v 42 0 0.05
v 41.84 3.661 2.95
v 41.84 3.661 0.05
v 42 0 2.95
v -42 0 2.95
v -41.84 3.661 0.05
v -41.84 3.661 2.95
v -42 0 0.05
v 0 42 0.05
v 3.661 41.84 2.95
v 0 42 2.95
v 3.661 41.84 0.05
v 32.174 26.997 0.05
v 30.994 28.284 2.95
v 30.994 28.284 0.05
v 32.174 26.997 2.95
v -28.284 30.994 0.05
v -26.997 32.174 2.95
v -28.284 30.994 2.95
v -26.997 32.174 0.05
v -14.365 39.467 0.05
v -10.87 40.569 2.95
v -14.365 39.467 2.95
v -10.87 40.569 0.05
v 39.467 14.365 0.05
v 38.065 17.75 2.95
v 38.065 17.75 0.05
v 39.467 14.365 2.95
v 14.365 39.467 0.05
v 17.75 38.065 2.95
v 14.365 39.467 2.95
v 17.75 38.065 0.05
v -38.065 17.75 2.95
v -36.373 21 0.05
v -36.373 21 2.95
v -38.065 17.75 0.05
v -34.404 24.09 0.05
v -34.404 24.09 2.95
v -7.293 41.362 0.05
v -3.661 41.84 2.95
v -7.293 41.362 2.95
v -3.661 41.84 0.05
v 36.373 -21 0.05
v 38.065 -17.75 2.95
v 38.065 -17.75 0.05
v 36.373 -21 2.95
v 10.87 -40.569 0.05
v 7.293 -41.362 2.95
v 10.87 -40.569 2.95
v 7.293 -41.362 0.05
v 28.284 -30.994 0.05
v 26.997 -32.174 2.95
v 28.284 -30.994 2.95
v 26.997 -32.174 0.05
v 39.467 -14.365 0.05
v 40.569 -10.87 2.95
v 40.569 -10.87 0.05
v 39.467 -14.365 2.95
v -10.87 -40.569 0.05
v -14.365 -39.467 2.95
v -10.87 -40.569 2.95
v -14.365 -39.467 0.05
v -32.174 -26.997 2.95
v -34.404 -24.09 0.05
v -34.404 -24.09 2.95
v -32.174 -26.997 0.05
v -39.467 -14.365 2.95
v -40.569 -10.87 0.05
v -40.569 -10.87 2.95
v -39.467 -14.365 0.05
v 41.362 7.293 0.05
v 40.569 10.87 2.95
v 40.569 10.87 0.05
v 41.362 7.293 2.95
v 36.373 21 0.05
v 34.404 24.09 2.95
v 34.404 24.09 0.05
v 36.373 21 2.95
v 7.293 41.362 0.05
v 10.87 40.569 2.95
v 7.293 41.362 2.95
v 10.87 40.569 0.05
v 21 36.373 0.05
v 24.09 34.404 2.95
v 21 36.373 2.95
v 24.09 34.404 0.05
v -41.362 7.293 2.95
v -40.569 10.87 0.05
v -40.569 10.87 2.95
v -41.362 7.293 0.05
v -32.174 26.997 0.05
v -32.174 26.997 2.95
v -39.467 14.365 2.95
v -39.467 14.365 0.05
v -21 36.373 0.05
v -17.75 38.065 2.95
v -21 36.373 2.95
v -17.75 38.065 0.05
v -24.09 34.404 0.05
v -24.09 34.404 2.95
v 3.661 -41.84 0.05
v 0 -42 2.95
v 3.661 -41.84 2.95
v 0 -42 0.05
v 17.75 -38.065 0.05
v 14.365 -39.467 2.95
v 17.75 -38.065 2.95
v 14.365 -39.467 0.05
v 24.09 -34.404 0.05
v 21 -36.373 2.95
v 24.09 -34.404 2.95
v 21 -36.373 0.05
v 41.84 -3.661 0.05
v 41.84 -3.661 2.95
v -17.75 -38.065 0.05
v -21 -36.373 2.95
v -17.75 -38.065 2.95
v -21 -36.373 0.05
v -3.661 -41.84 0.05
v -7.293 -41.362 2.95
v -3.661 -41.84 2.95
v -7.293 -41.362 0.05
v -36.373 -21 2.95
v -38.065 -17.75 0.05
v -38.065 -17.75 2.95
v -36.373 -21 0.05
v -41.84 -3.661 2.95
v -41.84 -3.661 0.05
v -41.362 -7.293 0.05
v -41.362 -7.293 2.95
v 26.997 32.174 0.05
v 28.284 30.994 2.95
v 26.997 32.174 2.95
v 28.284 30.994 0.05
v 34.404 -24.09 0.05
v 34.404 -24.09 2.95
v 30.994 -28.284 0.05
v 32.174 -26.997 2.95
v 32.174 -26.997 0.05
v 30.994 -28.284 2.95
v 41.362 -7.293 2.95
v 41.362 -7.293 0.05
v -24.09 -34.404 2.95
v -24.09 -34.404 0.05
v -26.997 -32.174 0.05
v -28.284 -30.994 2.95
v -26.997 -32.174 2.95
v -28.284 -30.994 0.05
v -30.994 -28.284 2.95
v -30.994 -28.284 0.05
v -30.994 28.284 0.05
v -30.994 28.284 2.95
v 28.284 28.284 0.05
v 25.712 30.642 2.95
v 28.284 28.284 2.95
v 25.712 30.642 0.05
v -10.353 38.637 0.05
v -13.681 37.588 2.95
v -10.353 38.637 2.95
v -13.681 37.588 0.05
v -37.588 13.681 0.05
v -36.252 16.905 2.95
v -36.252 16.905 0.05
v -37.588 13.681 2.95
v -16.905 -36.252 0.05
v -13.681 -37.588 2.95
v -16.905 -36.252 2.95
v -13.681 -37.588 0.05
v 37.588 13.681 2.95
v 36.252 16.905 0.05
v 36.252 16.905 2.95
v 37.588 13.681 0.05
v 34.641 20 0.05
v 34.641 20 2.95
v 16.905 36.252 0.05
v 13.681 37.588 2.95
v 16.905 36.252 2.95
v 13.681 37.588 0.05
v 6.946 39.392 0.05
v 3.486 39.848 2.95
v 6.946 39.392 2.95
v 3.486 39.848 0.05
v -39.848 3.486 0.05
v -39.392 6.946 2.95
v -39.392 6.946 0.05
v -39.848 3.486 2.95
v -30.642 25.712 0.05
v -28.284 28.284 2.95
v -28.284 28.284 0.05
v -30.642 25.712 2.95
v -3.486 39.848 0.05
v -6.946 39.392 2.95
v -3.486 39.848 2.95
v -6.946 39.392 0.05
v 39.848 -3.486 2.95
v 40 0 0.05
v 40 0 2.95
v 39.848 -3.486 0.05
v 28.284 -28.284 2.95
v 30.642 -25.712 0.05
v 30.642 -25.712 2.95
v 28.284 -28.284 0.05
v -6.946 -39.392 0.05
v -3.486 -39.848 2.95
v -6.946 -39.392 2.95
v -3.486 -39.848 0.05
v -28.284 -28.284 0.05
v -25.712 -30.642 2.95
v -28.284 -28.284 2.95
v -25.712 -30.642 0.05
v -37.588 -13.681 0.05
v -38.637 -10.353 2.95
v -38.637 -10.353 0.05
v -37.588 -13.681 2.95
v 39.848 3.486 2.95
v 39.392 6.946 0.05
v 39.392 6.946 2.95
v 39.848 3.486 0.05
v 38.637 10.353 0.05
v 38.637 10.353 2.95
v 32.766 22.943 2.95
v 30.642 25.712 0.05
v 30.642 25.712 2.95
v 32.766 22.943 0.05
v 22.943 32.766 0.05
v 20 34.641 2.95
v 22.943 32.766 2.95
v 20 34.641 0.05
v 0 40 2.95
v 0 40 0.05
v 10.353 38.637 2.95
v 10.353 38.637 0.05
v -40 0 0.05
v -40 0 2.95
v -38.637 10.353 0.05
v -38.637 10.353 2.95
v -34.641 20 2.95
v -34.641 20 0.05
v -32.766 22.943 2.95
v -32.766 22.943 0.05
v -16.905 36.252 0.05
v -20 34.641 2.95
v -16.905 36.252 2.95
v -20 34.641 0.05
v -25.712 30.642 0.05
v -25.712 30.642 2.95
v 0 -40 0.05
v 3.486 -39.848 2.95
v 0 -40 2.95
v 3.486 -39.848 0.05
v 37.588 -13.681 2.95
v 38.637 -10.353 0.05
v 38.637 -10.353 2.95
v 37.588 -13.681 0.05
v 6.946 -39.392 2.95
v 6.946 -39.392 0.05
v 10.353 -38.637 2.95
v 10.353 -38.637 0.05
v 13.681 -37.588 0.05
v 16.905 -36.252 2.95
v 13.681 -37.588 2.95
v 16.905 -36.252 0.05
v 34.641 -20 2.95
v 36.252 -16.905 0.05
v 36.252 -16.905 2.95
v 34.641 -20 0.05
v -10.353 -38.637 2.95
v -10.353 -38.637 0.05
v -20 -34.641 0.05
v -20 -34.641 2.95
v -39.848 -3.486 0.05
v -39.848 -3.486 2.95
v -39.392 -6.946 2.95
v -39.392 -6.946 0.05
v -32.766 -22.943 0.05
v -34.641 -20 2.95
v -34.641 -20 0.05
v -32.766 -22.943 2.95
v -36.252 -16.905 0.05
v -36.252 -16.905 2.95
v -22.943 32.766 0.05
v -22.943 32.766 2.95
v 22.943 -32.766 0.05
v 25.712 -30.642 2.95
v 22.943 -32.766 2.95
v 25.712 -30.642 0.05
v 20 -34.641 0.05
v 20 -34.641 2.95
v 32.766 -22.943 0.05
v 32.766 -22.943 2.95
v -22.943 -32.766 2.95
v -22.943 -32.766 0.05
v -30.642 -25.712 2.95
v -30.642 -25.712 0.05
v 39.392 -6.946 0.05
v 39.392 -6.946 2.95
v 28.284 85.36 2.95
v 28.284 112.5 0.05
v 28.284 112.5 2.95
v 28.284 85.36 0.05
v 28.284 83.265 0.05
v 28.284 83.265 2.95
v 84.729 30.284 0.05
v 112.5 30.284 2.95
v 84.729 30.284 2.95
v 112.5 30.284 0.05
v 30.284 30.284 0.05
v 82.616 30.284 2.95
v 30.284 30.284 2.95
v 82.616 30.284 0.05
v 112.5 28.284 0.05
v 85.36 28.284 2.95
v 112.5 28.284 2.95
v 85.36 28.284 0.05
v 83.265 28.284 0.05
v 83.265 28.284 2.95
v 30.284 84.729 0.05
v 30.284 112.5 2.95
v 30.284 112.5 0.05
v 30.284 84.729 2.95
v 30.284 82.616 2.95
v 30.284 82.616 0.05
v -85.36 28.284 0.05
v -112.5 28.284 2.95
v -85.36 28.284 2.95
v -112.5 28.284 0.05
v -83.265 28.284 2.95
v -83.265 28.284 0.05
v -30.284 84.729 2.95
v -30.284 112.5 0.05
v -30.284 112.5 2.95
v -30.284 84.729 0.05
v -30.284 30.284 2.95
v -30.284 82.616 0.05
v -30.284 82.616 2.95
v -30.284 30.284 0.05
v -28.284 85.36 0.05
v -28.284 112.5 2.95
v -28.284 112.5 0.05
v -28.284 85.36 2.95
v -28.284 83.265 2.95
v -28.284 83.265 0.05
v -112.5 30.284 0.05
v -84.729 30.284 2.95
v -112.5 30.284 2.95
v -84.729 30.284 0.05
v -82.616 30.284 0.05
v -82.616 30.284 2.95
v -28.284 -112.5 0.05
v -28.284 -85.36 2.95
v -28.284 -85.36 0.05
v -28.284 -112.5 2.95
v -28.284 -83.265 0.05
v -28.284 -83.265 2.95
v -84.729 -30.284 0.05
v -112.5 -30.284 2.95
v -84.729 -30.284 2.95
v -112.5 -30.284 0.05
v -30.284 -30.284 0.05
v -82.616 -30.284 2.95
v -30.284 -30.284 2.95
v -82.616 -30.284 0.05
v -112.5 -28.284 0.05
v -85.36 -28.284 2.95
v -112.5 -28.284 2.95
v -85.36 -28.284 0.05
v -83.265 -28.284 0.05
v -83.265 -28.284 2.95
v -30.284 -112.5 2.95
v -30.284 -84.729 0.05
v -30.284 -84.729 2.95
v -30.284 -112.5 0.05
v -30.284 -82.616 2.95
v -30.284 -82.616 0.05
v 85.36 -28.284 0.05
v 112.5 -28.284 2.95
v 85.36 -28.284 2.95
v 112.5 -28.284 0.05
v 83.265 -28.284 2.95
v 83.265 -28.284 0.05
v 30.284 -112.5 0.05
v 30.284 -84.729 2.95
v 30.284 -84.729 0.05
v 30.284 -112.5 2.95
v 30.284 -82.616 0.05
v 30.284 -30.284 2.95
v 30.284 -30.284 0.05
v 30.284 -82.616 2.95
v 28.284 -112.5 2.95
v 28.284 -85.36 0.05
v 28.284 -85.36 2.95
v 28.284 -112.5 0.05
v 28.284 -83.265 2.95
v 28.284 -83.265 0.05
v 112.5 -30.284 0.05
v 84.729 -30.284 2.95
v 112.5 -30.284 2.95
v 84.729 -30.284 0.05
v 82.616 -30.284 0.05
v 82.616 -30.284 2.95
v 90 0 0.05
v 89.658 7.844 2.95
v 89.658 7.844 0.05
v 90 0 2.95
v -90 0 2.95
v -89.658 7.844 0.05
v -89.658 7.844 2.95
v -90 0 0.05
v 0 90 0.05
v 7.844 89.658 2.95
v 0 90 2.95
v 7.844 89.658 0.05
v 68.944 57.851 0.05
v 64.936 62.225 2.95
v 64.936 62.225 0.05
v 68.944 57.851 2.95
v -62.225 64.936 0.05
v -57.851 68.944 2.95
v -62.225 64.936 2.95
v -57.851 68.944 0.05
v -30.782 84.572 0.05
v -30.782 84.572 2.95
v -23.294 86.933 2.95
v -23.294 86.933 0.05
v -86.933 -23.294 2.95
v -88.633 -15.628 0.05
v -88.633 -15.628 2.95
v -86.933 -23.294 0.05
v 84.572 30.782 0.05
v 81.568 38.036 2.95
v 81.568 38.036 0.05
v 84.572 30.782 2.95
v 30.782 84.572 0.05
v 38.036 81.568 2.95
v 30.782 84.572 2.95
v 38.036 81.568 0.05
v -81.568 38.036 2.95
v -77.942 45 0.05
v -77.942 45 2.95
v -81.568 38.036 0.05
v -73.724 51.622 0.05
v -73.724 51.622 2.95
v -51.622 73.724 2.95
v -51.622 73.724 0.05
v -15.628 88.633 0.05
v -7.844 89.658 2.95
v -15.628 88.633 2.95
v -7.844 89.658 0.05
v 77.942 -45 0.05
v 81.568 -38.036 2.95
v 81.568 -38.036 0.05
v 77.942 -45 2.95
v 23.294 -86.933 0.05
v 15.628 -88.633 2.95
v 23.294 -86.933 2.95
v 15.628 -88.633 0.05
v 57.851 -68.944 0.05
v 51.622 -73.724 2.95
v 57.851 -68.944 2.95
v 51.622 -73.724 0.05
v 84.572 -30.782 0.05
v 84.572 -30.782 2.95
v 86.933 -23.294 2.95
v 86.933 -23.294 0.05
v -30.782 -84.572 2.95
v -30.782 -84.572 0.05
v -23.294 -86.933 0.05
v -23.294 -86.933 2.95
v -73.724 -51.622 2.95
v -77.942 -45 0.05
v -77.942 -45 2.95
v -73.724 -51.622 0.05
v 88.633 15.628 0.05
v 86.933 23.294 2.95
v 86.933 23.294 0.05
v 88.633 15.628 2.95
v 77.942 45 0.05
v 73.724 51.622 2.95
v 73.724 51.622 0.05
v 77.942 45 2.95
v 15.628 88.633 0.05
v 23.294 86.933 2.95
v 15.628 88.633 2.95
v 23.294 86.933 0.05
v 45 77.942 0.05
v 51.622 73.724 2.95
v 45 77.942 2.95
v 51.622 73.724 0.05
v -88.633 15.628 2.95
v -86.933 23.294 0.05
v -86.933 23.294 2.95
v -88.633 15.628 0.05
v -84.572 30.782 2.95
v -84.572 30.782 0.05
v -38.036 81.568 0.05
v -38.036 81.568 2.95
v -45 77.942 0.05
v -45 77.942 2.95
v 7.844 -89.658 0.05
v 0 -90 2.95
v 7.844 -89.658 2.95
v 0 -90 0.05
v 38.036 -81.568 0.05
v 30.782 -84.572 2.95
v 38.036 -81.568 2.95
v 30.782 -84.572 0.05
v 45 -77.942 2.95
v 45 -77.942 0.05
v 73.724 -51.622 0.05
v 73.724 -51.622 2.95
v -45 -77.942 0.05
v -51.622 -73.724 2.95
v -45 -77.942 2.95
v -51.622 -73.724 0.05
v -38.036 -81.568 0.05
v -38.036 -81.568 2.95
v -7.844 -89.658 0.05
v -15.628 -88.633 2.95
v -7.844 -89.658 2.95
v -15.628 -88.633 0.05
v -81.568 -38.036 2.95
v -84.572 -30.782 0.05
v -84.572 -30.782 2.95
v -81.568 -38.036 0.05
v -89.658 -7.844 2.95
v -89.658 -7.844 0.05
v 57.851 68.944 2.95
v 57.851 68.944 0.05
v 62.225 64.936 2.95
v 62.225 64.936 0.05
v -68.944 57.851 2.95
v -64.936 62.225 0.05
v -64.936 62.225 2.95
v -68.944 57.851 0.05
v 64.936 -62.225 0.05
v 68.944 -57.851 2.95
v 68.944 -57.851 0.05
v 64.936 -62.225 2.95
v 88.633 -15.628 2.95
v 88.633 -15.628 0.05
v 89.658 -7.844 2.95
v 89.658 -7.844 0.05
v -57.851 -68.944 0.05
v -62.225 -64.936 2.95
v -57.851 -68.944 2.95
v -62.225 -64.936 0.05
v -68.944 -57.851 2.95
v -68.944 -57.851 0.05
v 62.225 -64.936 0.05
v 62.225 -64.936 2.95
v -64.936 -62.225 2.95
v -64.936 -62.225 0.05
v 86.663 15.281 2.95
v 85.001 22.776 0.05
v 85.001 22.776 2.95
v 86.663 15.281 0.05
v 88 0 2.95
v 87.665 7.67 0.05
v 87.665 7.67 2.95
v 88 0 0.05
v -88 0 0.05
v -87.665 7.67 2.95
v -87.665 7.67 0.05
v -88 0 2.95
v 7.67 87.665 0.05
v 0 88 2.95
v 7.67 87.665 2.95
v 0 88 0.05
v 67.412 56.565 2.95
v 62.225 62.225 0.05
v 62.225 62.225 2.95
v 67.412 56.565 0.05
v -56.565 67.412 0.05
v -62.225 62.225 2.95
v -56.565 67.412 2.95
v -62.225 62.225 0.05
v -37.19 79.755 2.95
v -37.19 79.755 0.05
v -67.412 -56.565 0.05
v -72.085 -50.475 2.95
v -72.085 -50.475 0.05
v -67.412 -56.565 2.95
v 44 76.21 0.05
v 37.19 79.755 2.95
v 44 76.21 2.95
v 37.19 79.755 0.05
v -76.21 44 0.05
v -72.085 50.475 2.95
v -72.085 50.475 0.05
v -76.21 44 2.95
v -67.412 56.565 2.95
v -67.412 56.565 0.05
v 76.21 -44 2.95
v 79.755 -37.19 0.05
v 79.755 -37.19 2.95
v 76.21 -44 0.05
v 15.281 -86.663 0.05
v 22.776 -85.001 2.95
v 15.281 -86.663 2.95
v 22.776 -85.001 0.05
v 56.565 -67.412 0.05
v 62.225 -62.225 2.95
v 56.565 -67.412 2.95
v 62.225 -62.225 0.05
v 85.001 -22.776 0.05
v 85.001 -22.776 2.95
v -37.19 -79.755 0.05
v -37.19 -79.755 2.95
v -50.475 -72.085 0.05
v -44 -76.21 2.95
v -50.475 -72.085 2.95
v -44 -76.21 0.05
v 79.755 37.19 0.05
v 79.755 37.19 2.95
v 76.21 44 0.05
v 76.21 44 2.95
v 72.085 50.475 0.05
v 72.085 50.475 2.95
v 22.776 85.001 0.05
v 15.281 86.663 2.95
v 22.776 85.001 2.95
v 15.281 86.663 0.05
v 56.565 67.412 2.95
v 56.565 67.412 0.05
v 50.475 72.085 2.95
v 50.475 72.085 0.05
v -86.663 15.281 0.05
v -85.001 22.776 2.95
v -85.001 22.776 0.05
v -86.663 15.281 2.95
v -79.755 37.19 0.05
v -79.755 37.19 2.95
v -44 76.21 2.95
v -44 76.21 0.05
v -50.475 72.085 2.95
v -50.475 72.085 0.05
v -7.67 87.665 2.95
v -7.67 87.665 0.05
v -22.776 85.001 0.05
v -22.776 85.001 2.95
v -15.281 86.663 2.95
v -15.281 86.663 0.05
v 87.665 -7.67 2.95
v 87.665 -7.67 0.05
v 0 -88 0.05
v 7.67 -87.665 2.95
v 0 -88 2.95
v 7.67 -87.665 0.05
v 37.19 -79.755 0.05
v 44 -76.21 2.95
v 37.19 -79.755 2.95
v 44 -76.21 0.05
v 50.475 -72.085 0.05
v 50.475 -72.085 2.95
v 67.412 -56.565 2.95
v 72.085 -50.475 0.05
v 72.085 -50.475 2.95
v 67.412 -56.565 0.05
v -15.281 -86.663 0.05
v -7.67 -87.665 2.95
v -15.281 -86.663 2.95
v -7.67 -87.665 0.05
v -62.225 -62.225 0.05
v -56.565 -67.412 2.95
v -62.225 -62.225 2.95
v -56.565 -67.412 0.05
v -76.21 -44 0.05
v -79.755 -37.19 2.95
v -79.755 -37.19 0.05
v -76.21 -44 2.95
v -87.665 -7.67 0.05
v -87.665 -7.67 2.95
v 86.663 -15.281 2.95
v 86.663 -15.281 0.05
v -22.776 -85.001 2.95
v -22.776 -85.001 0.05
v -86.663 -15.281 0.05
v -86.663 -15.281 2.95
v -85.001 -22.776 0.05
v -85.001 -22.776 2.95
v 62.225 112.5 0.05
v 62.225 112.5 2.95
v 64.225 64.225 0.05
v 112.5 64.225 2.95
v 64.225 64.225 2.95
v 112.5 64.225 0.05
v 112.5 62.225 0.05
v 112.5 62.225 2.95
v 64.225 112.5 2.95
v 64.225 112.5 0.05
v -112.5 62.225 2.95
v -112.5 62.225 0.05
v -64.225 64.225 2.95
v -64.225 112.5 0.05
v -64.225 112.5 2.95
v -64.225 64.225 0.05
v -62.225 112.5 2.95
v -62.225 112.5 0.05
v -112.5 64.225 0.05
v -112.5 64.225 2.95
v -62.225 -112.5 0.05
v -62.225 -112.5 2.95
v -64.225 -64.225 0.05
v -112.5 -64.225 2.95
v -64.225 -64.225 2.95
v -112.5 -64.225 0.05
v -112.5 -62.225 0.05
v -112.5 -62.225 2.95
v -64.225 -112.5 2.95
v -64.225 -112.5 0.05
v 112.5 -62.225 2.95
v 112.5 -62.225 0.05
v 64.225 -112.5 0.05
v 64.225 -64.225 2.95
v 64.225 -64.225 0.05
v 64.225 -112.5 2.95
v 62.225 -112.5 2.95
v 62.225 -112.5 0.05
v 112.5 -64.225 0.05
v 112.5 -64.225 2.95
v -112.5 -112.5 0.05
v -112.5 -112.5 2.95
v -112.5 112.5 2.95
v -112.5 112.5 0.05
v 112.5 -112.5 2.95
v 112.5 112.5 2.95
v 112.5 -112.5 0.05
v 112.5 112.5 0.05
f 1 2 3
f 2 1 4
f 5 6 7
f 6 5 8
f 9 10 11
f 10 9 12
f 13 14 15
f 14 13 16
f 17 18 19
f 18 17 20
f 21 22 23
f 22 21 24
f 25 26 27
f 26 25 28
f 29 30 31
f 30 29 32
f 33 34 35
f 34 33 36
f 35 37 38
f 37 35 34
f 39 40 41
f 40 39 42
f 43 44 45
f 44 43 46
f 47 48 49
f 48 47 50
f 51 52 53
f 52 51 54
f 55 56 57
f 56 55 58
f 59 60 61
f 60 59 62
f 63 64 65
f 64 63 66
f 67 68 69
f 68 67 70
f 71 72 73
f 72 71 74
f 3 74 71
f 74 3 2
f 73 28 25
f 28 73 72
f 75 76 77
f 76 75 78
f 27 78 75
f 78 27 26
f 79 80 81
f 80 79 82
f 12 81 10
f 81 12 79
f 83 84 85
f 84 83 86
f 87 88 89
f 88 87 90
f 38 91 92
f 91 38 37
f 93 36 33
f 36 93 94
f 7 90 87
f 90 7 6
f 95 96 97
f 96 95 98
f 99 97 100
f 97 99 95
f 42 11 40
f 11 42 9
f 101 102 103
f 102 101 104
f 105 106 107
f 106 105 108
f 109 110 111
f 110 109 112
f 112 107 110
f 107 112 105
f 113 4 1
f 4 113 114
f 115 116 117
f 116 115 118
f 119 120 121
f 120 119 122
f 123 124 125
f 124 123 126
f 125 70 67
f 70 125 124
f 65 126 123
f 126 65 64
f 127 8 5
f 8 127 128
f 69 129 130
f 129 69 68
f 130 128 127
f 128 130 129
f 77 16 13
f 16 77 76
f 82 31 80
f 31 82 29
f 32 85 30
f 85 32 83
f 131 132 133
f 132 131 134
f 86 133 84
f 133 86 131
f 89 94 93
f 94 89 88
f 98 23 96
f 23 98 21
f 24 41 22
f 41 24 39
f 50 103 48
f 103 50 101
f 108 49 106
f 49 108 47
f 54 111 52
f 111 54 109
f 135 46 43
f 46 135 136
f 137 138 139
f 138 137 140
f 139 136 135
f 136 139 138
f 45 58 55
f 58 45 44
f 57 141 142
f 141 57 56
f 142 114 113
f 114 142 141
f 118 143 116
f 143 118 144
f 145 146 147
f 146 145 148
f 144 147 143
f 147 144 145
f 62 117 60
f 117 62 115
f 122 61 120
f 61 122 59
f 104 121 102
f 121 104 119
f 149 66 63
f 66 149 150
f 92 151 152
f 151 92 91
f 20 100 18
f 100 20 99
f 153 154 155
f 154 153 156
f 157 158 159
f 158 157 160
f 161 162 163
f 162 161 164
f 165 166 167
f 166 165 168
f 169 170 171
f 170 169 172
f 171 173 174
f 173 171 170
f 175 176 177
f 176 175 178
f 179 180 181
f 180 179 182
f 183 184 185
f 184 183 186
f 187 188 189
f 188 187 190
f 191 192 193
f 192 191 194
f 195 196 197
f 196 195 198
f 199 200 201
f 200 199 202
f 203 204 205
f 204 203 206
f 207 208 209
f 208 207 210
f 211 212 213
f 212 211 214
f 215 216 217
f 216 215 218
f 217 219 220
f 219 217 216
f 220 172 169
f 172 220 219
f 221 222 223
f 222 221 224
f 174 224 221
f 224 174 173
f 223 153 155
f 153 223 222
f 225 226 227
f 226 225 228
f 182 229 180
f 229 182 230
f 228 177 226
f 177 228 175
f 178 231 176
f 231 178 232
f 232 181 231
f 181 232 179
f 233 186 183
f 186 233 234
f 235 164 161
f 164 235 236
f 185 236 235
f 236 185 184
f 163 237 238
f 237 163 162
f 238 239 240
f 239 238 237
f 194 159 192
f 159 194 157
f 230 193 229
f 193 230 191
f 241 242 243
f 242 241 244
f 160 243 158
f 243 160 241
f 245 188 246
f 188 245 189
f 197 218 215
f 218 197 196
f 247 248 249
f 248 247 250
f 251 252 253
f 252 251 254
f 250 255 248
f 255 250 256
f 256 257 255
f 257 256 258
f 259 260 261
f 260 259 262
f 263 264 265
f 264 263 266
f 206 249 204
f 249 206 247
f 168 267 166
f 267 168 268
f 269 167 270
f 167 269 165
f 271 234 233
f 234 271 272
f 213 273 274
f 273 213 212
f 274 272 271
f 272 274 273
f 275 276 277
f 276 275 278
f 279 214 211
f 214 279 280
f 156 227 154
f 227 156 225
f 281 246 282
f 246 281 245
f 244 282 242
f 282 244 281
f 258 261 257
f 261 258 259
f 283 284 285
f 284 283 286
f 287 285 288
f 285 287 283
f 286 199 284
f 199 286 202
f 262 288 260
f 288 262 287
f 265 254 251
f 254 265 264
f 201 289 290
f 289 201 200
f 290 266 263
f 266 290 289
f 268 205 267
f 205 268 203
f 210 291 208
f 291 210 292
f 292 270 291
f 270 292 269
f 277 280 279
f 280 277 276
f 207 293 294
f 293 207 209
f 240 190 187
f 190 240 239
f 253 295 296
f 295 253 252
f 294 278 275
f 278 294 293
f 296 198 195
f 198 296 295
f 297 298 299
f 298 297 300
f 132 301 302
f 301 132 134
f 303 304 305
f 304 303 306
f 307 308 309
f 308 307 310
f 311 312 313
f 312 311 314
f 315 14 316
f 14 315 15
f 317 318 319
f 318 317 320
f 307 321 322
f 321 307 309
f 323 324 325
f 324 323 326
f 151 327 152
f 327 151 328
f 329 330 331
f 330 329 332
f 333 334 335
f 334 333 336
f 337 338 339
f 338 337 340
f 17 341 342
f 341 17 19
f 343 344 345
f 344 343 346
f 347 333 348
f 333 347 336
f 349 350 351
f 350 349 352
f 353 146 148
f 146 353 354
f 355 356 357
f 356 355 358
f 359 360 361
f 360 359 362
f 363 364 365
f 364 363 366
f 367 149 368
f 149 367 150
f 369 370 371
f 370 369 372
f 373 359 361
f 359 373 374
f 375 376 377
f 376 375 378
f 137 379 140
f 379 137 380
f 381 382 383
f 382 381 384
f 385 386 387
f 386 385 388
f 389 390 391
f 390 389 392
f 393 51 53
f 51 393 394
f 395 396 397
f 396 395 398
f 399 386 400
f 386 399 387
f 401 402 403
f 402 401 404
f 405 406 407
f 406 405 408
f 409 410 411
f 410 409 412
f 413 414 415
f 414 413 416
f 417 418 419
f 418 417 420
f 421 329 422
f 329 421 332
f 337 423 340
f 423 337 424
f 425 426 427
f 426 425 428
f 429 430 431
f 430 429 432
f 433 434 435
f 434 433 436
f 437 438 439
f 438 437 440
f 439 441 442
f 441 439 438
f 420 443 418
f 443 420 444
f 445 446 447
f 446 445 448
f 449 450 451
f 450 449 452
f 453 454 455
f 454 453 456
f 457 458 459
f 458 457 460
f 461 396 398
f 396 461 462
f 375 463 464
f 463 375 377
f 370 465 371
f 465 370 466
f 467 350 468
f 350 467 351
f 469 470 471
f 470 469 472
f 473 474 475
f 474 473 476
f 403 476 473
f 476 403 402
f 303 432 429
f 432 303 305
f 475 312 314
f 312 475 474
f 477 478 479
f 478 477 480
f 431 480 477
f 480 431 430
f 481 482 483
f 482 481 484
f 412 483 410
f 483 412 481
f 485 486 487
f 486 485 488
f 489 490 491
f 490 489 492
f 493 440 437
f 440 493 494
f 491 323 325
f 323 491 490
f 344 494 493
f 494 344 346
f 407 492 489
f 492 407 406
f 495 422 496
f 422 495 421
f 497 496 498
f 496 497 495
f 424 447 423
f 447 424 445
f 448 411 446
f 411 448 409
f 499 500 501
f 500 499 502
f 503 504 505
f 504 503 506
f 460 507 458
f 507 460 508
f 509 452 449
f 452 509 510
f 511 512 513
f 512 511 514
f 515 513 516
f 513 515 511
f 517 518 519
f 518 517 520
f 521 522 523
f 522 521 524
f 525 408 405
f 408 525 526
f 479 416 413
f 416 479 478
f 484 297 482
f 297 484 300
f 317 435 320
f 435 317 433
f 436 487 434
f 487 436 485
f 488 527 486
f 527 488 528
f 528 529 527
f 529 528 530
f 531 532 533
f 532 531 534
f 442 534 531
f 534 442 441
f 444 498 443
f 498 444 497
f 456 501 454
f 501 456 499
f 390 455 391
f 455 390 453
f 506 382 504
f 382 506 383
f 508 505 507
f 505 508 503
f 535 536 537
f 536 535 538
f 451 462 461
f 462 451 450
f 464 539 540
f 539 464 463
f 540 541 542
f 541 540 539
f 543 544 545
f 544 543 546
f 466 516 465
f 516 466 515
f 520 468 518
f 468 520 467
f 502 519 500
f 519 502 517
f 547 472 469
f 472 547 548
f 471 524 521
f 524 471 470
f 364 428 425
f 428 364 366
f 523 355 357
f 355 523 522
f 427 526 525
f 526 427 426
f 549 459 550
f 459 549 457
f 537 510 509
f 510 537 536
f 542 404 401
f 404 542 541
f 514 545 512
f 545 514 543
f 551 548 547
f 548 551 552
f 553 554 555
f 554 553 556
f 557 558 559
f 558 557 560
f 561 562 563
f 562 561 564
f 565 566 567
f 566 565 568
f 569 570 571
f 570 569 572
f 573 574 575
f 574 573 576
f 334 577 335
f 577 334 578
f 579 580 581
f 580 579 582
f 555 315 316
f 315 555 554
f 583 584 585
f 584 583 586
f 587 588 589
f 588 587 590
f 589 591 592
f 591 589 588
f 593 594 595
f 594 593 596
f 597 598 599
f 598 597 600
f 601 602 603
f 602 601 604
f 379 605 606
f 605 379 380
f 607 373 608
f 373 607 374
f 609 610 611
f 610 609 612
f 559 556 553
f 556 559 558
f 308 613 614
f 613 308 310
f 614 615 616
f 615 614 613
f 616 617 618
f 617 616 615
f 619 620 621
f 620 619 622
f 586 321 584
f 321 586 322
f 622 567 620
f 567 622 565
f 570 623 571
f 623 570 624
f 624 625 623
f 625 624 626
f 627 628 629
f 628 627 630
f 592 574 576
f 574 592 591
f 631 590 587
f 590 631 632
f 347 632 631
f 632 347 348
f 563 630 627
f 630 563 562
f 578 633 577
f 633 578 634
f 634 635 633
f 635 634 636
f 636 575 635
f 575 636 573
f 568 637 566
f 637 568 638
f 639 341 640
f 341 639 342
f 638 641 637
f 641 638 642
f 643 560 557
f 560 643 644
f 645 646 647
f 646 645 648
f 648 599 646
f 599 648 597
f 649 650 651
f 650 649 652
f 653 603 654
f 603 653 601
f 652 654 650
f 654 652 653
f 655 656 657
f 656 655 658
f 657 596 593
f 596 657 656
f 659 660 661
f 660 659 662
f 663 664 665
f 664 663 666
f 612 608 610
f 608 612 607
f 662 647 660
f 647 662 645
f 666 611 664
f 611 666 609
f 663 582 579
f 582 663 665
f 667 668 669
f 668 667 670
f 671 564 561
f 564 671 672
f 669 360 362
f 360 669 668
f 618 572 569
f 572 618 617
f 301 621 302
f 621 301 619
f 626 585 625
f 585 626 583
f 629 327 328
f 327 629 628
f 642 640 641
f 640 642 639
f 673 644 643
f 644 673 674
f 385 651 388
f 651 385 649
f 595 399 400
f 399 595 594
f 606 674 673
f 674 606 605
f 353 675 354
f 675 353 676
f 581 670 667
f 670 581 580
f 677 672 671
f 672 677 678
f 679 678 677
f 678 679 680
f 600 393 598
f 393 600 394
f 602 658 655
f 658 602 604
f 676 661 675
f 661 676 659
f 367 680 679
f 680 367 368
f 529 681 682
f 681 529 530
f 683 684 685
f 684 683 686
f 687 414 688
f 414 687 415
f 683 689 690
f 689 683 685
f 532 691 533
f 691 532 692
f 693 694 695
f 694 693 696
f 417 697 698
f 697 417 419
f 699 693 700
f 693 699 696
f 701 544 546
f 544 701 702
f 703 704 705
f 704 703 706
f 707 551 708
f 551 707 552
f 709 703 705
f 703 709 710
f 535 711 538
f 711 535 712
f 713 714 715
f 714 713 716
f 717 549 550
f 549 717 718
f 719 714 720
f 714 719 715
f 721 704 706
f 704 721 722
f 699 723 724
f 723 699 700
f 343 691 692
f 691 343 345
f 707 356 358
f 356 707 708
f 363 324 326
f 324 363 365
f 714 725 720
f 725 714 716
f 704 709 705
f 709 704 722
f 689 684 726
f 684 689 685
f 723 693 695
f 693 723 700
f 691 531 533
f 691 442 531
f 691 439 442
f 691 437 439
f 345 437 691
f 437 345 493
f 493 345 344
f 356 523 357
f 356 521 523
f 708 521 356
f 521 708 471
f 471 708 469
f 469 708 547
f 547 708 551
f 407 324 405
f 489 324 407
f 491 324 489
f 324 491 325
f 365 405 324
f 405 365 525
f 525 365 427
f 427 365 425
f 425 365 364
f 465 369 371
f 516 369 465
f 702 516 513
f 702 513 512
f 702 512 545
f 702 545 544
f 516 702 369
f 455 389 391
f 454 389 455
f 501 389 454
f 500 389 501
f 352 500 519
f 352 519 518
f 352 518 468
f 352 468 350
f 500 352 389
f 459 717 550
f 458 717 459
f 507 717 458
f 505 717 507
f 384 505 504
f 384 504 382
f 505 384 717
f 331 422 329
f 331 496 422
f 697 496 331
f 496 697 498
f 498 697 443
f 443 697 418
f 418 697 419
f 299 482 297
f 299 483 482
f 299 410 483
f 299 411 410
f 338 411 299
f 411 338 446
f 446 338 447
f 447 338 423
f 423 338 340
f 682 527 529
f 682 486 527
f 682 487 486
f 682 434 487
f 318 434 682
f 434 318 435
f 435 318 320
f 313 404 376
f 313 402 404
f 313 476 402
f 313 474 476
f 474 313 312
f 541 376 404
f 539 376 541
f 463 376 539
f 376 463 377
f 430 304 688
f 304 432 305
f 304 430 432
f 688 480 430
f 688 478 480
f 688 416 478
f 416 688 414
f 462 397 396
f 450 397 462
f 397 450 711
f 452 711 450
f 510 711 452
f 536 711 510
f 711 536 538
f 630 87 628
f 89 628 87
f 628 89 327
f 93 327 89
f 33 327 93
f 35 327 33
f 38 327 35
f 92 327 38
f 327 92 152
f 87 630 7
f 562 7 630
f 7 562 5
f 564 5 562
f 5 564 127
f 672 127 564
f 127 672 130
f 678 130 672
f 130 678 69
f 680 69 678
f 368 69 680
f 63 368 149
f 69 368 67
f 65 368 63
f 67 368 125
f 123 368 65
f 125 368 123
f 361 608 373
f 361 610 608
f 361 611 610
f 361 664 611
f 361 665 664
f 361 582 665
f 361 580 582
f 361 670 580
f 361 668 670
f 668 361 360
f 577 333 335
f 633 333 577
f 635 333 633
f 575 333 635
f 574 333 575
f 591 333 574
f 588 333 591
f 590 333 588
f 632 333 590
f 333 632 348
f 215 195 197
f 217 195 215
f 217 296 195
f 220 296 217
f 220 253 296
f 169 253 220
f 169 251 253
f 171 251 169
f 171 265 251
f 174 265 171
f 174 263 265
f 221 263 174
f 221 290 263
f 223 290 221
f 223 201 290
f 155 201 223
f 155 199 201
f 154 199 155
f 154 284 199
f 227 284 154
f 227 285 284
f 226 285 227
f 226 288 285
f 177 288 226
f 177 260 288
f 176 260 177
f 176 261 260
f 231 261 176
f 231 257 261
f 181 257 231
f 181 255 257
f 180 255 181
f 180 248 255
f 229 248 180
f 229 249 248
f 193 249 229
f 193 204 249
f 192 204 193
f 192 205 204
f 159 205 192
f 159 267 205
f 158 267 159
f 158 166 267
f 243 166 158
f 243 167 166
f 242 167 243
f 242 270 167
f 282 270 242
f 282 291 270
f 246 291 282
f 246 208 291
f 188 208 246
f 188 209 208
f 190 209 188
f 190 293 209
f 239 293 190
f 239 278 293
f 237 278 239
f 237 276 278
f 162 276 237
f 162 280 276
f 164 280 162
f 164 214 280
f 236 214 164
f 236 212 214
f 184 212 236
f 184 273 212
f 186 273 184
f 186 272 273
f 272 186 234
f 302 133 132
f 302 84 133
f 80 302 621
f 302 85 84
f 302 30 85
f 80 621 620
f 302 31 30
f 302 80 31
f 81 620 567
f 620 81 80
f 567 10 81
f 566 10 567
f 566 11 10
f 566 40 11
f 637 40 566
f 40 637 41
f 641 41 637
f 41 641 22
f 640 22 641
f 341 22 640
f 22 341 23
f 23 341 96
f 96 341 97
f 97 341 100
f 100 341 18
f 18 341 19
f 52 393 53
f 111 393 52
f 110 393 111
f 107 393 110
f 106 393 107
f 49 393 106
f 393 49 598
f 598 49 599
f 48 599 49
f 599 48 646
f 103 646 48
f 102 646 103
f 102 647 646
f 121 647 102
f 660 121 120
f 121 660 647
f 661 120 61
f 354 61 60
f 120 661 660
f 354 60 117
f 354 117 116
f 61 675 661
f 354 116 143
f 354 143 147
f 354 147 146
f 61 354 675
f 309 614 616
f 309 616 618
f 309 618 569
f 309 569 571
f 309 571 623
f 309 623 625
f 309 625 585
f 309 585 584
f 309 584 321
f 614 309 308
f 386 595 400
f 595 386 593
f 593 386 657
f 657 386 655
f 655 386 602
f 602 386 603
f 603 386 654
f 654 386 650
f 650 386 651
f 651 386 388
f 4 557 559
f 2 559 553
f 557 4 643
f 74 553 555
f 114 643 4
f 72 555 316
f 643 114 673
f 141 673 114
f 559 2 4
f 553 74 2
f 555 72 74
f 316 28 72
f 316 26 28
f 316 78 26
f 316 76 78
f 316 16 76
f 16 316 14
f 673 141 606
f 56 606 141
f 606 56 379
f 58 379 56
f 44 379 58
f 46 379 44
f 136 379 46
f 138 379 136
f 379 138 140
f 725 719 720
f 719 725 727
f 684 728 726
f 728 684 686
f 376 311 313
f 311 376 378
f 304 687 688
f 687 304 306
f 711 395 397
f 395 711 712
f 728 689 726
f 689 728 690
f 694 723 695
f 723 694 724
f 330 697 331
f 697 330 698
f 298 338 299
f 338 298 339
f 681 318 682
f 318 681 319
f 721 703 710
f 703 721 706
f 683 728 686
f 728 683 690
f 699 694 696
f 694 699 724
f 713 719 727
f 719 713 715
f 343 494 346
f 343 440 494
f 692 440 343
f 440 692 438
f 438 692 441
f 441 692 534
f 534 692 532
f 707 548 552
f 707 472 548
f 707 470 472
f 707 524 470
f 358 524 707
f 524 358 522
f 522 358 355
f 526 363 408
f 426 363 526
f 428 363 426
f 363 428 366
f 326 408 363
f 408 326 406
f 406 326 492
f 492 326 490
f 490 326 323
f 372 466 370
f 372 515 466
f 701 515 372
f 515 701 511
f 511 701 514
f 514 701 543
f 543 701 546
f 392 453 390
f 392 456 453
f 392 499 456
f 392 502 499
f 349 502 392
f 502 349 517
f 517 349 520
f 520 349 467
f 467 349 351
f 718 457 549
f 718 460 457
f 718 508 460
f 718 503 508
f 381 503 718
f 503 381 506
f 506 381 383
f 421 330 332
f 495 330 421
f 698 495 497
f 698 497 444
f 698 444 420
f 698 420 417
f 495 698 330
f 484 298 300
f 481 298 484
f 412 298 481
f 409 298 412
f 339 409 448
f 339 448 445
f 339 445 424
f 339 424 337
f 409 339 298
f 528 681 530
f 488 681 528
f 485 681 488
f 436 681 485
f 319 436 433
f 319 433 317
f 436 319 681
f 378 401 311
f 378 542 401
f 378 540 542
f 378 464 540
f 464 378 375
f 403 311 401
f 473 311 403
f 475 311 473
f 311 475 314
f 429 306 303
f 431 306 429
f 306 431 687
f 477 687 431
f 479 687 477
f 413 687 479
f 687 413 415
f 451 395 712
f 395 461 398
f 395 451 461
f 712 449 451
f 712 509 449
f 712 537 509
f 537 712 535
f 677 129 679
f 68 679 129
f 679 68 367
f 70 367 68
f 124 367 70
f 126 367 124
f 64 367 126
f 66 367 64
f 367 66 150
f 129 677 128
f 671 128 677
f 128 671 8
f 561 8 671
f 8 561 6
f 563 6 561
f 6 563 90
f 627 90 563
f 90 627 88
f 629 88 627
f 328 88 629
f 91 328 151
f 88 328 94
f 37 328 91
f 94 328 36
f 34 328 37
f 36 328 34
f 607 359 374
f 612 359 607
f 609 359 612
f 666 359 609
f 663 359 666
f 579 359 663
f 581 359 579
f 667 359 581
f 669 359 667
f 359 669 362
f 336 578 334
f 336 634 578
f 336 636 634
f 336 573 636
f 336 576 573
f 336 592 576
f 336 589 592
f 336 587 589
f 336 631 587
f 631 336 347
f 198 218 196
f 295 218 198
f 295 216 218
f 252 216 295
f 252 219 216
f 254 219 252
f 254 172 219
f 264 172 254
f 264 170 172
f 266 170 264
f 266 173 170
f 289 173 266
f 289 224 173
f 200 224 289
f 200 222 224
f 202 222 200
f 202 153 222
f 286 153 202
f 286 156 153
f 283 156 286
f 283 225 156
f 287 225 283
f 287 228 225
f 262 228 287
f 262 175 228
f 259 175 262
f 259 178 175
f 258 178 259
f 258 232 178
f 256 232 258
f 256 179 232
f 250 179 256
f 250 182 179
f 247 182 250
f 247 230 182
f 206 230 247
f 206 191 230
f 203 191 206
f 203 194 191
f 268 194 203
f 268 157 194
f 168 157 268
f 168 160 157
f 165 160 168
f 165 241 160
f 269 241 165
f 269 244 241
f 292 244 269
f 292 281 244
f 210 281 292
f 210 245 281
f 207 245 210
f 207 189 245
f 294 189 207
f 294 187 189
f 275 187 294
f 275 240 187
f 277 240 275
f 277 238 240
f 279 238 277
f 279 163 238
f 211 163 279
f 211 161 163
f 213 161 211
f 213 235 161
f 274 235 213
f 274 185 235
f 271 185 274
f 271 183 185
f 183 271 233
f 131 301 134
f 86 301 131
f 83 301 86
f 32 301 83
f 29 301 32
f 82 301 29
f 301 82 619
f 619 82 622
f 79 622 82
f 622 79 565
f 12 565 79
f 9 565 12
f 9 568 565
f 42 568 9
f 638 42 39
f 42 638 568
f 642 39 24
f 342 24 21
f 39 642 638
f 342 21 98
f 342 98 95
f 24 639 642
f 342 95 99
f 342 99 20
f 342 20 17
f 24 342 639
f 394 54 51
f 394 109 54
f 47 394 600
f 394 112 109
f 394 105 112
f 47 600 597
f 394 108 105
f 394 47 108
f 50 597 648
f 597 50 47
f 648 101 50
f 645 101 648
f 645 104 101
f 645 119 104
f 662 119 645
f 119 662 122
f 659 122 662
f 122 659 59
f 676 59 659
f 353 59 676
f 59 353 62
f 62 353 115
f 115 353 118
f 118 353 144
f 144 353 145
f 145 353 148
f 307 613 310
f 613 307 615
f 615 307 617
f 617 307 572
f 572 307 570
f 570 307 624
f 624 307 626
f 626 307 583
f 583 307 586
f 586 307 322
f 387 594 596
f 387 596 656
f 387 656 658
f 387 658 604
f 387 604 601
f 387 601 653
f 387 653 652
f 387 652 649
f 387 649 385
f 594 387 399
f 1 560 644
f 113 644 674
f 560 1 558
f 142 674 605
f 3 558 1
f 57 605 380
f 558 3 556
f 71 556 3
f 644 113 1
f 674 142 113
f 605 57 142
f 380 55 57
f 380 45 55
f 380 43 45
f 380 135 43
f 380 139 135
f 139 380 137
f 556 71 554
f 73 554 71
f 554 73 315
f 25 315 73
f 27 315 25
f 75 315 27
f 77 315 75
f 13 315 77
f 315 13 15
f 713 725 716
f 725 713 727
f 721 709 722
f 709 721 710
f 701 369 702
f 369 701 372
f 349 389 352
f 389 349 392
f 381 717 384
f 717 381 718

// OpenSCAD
$fn=72;
difference() {
  translate([-112.5, -112.5, 0.05]) {
    cube([225.0, 225.0, 2.9]);
  }
  union() {
    difference() {
      translate([0, 0, 0]) {
        cylinder(h=3, r=42.0);
      }
      translate([0, 0, -0.05]) {
        cylinder(h=3.1, r=40.0);
      }
    }
    rotate([0, 0, 0]) {
      translate([28.2842712474619, 28.284271247461902, 0]) {
        translate([0, 0, 0]) {
          cube([100, 2, 4]);
          cube([2, 100, 4]);
        }
      }
    }
    rotate([0, 0, 90]) {
      translate([28.2842712474619, 28.284271247461902, 0]) {
        translate([0, 0, 0]) {
          cube([100, 2, 4]);
          cube([2, 100, 4]);
        }
      }
    }
    rotate([0, 0, 180]) {
      translate([28.2842712474619, 28.284271247461902, 0]) {
        translate([0, 0, 0]) {
          cube([100, 2, 4]);
          cube([2, 100, 4]);
        }
      }
    }
    rotate([0, 0, 270]) {
      translate([28.2842712474619, 28.284271247461902, 0]) {
        translate([0, 0, 0]) {
          cube([100, 2, 4]);
          cube([2, 100, 4]);
        }
      }
    }
    difference() {
      translate([0, 0, 0]) {
        cylinder(h=3, r=90.0);
      }
      translate([0, 0, -0.05]) {
        cylinder(h=3.1, r=88.0);
      }
    }
    rotate([0, 0, 0]) {
      translate([62.22539674441617, 62.22539674441619, 0]) {
        translate([0, 0, 0]) {
          cube([100, 2, 4]);
          cube([2, 100, 4]);
        }
      }
    }
    rotate([0, 0, 90]) {
      translate([62.22539674441617, 62.22539674441619, 0]) {
        translate([0, 0, 0]) {
          cube([100, 2, 4]);
          cube([2, 100, 4]);
        }
      }
    }
    rotate([0, 0, 180]) {
      translate([62.22539674441617, 62.22539674441619, 0]) {
        translate([0, 0, 0]) {
          cube([100, 2, 4]);
          cube([2, 100, 4]);
        }
      }
    }
    rotate([0, 0, 270]) {
      translate([62.22539674441617, 62.22539674441619, 0]) {
        translate([0, 0, 0]) {
          cube([100, 2, 4]);
          cube([2, 100, 4]);
        }
      }
    }
  }
}
